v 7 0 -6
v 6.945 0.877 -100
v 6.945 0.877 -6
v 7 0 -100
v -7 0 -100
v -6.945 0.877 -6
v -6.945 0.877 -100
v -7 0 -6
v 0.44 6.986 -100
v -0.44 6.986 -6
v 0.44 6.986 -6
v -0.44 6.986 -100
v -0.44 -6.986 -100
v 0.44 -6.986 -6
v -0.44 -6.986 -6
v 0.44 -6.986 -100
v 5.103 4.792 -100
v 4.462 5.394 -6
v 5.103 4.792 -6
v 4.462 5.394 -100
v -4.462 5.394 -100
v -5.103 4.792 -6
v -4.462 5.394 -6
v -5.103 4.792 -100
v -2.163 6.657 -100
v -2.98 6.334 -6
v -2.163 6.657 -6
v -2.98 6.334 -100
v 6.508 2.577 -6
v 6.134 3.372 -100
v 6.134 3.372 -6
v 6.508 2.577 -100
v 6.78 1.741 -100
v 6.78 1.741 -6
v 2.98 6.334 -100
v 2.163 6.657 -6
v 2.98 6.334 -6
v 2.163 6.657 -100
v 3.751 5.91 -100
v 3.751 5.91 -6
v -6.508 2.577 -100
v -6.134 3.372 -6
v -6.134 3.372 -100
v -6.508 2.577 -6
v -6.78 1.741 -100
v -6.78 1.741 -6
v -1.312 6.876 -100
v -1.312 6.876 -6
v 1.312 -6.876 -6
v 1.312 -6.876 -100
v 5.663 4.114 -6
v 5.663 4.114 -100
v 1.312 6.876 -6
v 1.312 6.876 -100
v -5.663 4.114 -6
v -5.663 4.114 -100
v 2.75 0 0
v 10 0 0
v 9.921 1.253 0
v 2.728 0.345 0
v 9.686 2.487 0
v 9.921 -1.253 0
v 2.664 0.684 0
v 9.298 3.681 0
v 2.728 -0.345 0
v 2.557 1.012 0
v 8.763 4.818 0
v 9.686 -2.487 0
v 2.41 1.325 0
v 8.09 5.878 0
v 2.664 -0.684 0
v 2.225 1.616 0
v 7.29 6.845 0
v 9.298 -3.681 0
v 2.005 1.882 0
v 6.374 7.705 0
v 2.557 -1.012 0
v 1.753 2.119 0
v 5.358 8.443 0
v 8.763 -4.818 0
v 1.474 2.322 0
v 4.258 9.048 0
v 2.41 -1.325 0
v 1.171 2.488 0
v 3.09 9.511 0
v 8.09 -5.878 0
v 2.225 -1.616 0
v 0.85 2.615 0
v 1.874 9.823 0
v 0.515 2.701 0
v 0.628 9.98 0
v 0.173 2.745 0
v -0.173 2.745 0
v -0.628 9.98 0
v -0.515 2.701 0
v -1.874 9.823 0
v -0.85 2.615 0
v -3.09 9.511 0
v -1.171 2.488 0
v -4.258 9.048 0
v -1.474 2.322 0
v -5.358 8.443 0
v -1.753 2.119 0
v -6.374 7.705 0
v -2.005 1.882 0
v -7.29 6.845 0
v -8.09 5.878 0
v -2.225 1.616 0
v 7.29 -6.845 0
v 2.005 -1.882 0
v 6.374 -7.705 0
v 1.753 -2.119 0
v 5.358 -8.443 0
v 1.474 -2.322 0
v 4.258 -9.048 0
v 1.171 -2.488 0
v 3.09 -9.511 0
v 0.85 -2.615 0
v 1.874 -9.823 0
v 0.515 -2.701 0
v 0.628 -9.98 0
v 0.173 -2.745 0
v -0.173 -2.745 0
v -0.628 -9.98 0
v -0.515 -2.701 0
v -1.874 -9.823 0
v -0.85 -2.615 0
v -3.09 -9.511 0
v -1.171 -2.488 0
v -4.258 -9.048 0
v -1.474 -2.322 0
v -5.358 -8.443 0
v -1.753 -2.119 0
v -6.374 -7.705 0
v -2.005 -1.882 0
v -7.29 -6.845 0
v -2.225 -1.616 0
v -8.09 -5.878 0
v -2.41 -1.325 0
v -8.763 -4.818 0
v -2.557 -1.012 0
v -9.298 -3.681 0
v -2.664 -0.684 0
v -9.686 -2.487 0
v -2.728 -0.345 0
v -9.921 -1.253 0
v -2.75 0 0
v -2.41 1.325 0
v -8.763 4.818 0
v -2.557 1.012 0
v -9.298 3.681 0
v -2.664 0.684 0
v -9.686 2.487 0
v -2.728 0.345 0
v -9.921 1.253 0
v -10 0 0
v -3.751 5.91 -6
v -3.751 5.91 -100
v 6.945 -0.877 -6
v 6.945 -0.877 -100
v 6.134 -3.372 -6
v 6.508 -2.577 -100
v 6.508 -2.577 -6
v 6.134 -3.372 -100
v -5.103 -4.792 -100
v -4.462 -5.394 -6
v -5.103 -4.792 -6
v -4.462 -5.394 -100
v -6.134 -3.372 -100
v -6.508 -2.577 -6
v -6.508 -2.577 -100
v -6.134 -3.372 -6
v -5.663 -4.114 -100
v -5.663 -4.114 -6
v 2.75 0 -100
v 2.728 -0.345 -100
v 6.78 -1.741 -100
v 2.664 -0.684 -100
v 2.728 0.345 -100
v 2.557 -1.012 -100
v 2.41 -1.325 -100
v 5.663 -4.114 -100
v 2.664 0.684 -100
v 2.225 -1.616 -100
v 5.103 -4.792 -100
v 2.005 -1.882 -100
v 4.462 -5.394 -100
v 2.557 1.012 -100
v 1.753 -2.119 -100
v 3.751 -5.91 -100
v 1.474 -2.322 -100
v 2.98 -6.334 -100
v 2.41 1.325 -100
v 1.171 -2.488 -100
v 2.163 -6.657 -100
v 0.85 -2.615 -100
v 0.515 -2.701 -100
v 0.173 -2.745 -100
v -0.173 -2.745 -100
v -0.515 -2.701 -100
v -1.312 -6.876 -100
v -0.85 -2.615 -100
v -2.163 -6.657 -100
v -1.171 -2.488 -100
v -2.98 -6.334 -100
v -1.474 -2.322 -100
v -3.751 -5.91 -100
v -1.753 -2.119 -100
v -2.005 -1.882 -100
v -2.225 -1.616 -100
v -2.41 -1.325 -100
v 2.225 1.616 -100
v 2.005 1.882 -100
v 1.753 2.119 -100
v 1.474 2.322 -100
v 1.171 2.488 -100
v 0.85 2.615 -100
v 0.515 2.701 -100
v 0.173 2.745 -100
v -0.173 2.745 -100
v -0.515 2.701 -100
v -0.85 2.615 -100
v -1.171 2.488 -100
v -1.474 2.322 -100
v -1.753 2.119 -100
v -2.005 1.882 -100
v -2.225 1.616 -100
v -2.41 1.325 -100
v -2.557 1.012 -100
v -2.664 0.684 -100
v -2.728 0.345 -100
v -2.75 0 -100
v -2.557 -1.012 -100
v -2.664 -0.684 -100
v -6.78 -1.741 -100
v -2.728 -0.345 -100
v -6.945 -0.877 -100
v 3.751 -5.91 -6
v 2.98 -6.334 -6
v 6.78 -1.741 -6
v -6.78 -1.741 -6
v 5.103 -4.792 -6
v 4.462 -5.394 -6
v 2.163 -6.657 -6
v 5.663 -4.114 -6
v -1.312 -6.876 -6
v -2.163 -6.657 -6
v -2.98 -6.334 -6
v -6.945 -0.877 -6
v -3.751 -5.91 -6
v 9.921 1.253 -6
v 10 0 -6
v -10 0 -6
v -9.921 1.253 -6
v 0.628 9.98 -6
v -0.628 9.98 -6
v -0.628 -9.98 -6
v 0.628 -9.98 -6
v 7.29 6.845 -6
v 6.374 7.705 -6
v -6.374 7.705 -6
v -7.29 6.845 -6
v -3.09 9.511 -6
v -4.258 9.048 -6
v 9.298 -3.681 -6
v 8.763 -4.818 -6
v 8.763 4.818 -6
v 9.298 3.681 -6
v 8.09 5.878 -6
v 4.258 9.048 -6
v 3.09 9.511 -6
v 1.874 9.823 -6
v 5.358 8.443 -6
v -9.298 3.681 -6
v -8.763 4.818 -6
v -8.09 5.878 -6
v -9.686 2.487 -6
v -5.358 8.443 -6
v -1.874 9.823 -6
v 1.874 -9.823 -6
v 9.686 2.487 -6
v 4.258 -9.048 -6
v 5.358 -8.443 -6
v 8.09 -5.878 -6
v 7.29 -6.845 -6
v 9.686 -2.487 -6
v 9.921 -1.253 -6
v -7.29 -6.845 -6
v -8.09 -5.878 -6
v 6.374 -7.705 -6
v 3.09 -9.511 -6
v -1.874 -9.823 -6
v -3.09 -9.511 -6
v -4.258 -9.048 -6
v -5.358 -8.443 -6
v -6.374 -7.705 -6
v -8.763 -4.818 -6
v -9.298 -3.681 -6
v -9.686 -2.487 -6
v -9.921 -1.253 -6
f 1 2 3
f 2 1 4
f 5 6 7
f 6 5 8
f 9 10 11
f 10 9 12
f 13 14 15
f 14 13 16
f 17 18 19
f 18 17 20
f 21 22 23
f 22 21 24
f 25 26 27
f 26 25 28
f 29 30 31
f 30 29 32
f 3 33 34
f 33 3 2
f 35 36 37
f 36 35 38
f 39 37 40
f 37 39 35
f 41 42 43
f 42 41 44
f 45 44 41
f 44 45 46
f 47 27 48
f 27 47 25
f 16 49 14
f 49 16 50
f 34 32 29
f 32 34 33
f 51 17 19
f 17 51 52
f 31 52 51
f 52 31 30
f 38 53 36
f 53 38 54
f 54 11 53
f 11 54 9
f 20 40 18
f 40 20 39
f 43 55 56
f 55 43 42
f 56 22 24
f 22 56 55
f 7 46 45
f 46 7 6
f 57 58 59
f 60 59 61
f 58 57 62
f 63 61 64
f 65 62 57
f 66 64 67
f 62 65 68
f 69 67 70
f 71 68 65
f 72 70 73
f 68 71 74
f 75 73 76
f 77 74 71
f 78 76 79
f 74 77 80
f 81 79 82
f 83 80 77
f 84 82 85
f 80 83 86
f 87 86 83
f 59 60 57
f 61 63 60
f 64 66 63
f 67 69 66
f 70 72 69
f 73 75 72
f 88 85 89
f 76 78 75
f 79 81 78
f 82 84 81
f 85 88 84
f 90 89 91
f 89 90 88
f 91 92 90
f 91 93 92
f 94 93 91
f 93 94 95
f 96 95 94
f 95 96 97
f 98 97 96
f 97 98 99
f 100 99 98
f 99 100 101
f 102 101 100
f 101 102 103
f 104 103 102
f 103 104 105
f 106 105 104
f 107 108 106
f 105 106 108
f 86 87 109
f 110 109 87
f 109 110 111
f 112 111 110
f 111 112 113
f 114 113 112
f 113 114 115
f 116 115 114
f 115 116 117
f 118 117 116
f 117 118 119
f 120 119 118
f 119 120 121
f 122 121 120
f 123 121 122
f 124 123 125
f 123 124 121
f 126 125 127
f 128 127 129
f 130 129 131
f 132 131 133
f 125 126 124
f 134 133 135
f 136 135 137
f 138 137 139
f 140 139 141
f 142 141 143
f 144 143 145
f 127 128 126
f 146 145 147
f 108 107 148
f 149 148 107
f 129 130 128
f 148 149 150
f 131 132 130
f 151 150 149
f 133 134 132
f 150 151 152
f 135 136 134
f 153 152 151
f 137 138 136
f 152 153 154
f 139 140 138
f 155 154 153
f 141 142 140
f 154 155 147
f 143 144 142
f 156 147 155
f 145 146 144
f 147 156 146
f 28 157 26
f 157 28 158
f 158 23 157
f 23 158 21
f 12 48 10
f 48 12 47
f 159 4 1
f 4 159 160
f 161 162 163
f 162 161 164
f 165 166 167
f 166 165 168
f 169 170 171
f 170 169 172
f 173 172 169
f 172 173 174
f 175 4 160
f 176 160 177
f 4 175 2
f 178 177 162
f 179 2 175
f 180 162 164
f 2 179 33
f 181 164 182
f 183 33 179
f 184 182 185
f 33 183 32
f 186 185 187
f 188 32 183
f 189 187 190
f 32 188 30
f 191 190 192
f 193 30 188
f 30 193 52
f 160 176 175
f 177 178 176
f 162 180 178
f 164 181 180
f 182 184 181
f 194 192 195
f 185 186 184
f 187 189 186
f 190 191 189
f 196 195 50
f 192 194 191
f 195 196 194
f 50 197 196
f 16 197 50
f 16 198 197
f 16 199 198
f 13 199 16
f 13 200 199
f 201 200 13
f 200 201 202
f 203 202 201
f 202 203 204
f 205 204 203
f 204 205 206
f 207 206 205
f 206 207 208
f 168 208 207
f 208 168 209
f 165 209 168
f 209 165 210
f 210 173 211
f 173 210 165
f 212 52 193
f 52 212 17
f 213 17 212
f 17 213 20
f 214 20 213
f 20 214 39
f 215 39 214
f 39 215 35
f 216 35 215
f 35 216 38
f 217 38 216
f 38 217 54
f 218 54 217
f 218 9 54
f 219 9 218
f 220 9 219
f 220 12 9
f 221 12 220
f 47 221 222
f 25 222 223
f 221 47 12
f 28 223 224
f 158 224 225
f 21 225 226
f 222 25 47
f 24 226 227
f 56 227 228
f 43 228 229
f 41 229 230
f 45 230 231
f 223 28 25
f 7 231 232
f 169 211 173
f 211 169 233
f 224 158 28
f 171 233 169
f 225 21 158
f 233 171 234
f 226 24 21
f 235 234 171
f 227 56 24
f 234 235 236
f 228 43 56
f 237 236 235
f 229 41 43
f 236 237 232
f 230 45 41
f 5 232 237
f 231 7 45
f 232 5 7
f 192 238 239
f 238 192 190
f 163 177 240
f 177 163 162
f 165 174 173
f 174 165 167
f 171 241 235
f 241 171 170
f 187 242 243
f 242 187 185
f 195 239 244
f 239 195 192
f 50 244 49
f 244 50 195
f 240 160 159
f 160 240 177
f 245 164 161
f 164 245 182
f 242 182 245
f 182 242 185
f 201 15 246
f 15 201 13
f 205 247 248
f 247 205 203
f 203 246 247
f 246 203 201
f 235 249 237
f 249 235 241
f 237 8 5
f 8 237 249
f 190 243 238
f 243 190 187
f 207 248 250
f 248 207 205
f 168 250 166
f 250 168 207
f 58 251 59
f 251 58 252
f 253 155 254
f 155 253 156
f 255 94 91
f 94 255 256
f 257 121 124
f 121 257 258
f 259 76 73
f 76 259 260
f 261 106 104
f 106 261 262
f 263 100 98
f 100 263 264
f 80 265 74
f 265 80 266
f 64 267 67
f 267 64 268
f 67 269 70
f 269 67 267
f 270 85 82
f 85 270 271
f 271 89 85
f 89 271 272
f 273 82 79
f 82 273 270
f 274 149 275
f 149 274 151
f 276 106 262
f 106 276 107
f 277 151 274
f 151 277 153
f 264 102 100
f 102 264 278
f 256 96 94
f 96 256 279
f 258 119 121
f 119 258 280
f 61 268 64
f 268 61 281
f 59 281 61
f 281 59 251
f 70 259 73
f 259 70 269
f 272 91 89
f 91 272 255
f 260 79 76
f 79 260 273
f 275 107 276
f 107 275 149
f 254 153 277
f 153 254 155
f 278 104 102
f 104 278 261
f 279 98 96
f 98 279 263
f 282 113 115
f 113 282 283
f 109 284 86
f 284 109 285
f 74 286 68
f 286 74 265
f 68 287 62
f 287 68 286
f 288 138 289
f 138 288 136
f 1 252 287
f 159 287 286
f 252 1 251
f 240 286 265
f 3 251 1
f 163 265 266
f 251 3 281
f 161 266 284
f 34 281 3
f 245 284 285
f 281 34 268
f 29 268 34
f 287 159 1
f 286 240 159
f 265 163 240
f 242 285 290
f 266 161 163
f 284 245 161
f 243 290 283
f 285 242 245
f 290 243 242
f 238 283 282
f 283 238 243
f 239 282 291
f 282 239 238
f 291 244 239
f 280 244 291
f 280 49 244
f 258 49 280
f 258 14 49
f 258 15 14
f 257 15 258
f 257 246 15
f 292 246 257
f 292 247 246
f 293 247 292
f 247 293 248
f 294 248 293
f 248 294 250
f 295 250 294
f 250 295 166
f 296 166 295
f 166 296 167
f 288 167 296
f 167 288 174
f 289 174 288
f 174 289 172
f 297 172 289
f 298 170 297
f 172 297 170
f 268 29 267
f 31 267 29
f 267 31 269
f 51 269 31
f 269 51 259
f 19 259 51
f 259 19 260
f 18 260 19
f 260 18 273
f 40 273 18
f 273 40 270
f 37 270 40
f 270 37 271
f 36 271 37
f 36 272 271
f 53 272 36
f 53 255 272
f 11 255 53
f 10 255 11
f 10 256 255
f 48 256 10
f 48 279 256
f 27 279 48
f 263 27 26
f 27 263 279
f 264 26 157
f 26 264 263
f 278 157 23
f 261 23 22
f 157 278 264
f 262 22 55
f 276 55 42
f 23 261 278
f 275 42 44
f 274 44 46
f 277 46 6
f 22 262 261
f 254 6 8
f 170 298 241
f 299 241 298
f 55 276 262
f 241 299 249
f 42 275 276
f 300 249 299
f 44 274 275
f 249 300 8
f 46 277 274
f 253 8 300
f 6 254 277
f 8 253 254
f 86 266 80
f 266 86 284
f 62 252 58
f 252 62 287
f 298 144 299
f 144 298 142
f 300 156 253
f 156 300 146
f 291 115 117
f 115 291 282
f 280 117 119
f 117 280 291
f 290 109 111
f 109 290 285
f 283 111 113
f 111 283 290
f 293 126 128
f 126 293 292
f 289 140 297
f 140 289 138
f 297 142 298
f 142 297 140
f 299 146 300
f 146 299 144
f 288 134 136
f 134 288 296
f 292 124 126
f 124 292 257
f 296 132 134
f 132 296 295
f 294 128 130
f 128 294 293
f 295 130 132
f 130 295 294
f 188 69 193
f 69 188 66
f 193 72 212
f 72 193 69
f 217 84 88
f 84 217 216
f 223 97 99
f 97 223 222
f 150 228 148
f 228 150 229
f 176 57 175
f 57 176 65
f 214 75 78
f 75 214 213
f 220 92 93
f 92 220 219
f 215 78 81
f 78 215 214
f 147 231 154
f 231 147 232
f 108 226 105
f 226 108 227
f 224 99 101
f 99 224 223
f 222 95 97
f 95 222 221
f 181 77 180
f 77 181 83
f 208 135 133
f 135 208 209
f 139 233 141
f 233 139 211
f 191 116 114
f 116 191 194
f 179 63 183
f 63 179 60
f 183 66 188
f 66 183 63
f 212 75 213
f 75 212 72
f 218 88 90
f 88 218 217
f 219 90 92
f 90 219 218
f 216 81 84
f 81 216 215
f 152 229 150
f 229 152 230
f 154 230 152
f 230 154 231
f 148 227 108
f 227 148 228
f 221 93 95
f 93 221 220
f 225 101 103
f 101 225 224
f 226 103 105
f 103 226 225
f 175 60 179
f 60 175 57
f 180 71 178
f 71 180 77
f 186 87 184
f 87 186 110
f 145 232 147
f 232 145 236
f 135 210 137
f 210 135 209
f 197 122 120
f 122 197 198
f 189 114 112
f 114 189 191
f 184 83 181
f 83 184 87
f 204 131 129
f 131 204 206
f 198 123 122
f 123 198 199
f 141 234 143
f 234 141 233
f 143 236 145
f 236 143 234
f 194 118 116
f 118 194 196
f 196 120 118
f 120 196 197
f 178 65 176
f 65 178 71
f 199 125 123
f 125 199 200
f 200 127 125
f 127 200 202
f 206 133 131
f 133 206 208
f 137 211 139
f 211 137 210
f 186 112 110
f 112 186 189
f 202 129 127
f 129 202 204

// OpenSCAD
$fn = 50;


difference() {
	union() {
		translate(v = [0, 0, -100.0000000000]) {
			cylinder(h = 100, r = 7.0000000000);
		}
		translate(v = [0, 0, -6.0000000000]) {
			cylinder(h = 6, r = 10.0000000000);
		}
	}
	union() {
		#translate(v = [0, 0, -100]) {
			cylinder(h = 100, r = 2.7500000000);
		}
	}
}
